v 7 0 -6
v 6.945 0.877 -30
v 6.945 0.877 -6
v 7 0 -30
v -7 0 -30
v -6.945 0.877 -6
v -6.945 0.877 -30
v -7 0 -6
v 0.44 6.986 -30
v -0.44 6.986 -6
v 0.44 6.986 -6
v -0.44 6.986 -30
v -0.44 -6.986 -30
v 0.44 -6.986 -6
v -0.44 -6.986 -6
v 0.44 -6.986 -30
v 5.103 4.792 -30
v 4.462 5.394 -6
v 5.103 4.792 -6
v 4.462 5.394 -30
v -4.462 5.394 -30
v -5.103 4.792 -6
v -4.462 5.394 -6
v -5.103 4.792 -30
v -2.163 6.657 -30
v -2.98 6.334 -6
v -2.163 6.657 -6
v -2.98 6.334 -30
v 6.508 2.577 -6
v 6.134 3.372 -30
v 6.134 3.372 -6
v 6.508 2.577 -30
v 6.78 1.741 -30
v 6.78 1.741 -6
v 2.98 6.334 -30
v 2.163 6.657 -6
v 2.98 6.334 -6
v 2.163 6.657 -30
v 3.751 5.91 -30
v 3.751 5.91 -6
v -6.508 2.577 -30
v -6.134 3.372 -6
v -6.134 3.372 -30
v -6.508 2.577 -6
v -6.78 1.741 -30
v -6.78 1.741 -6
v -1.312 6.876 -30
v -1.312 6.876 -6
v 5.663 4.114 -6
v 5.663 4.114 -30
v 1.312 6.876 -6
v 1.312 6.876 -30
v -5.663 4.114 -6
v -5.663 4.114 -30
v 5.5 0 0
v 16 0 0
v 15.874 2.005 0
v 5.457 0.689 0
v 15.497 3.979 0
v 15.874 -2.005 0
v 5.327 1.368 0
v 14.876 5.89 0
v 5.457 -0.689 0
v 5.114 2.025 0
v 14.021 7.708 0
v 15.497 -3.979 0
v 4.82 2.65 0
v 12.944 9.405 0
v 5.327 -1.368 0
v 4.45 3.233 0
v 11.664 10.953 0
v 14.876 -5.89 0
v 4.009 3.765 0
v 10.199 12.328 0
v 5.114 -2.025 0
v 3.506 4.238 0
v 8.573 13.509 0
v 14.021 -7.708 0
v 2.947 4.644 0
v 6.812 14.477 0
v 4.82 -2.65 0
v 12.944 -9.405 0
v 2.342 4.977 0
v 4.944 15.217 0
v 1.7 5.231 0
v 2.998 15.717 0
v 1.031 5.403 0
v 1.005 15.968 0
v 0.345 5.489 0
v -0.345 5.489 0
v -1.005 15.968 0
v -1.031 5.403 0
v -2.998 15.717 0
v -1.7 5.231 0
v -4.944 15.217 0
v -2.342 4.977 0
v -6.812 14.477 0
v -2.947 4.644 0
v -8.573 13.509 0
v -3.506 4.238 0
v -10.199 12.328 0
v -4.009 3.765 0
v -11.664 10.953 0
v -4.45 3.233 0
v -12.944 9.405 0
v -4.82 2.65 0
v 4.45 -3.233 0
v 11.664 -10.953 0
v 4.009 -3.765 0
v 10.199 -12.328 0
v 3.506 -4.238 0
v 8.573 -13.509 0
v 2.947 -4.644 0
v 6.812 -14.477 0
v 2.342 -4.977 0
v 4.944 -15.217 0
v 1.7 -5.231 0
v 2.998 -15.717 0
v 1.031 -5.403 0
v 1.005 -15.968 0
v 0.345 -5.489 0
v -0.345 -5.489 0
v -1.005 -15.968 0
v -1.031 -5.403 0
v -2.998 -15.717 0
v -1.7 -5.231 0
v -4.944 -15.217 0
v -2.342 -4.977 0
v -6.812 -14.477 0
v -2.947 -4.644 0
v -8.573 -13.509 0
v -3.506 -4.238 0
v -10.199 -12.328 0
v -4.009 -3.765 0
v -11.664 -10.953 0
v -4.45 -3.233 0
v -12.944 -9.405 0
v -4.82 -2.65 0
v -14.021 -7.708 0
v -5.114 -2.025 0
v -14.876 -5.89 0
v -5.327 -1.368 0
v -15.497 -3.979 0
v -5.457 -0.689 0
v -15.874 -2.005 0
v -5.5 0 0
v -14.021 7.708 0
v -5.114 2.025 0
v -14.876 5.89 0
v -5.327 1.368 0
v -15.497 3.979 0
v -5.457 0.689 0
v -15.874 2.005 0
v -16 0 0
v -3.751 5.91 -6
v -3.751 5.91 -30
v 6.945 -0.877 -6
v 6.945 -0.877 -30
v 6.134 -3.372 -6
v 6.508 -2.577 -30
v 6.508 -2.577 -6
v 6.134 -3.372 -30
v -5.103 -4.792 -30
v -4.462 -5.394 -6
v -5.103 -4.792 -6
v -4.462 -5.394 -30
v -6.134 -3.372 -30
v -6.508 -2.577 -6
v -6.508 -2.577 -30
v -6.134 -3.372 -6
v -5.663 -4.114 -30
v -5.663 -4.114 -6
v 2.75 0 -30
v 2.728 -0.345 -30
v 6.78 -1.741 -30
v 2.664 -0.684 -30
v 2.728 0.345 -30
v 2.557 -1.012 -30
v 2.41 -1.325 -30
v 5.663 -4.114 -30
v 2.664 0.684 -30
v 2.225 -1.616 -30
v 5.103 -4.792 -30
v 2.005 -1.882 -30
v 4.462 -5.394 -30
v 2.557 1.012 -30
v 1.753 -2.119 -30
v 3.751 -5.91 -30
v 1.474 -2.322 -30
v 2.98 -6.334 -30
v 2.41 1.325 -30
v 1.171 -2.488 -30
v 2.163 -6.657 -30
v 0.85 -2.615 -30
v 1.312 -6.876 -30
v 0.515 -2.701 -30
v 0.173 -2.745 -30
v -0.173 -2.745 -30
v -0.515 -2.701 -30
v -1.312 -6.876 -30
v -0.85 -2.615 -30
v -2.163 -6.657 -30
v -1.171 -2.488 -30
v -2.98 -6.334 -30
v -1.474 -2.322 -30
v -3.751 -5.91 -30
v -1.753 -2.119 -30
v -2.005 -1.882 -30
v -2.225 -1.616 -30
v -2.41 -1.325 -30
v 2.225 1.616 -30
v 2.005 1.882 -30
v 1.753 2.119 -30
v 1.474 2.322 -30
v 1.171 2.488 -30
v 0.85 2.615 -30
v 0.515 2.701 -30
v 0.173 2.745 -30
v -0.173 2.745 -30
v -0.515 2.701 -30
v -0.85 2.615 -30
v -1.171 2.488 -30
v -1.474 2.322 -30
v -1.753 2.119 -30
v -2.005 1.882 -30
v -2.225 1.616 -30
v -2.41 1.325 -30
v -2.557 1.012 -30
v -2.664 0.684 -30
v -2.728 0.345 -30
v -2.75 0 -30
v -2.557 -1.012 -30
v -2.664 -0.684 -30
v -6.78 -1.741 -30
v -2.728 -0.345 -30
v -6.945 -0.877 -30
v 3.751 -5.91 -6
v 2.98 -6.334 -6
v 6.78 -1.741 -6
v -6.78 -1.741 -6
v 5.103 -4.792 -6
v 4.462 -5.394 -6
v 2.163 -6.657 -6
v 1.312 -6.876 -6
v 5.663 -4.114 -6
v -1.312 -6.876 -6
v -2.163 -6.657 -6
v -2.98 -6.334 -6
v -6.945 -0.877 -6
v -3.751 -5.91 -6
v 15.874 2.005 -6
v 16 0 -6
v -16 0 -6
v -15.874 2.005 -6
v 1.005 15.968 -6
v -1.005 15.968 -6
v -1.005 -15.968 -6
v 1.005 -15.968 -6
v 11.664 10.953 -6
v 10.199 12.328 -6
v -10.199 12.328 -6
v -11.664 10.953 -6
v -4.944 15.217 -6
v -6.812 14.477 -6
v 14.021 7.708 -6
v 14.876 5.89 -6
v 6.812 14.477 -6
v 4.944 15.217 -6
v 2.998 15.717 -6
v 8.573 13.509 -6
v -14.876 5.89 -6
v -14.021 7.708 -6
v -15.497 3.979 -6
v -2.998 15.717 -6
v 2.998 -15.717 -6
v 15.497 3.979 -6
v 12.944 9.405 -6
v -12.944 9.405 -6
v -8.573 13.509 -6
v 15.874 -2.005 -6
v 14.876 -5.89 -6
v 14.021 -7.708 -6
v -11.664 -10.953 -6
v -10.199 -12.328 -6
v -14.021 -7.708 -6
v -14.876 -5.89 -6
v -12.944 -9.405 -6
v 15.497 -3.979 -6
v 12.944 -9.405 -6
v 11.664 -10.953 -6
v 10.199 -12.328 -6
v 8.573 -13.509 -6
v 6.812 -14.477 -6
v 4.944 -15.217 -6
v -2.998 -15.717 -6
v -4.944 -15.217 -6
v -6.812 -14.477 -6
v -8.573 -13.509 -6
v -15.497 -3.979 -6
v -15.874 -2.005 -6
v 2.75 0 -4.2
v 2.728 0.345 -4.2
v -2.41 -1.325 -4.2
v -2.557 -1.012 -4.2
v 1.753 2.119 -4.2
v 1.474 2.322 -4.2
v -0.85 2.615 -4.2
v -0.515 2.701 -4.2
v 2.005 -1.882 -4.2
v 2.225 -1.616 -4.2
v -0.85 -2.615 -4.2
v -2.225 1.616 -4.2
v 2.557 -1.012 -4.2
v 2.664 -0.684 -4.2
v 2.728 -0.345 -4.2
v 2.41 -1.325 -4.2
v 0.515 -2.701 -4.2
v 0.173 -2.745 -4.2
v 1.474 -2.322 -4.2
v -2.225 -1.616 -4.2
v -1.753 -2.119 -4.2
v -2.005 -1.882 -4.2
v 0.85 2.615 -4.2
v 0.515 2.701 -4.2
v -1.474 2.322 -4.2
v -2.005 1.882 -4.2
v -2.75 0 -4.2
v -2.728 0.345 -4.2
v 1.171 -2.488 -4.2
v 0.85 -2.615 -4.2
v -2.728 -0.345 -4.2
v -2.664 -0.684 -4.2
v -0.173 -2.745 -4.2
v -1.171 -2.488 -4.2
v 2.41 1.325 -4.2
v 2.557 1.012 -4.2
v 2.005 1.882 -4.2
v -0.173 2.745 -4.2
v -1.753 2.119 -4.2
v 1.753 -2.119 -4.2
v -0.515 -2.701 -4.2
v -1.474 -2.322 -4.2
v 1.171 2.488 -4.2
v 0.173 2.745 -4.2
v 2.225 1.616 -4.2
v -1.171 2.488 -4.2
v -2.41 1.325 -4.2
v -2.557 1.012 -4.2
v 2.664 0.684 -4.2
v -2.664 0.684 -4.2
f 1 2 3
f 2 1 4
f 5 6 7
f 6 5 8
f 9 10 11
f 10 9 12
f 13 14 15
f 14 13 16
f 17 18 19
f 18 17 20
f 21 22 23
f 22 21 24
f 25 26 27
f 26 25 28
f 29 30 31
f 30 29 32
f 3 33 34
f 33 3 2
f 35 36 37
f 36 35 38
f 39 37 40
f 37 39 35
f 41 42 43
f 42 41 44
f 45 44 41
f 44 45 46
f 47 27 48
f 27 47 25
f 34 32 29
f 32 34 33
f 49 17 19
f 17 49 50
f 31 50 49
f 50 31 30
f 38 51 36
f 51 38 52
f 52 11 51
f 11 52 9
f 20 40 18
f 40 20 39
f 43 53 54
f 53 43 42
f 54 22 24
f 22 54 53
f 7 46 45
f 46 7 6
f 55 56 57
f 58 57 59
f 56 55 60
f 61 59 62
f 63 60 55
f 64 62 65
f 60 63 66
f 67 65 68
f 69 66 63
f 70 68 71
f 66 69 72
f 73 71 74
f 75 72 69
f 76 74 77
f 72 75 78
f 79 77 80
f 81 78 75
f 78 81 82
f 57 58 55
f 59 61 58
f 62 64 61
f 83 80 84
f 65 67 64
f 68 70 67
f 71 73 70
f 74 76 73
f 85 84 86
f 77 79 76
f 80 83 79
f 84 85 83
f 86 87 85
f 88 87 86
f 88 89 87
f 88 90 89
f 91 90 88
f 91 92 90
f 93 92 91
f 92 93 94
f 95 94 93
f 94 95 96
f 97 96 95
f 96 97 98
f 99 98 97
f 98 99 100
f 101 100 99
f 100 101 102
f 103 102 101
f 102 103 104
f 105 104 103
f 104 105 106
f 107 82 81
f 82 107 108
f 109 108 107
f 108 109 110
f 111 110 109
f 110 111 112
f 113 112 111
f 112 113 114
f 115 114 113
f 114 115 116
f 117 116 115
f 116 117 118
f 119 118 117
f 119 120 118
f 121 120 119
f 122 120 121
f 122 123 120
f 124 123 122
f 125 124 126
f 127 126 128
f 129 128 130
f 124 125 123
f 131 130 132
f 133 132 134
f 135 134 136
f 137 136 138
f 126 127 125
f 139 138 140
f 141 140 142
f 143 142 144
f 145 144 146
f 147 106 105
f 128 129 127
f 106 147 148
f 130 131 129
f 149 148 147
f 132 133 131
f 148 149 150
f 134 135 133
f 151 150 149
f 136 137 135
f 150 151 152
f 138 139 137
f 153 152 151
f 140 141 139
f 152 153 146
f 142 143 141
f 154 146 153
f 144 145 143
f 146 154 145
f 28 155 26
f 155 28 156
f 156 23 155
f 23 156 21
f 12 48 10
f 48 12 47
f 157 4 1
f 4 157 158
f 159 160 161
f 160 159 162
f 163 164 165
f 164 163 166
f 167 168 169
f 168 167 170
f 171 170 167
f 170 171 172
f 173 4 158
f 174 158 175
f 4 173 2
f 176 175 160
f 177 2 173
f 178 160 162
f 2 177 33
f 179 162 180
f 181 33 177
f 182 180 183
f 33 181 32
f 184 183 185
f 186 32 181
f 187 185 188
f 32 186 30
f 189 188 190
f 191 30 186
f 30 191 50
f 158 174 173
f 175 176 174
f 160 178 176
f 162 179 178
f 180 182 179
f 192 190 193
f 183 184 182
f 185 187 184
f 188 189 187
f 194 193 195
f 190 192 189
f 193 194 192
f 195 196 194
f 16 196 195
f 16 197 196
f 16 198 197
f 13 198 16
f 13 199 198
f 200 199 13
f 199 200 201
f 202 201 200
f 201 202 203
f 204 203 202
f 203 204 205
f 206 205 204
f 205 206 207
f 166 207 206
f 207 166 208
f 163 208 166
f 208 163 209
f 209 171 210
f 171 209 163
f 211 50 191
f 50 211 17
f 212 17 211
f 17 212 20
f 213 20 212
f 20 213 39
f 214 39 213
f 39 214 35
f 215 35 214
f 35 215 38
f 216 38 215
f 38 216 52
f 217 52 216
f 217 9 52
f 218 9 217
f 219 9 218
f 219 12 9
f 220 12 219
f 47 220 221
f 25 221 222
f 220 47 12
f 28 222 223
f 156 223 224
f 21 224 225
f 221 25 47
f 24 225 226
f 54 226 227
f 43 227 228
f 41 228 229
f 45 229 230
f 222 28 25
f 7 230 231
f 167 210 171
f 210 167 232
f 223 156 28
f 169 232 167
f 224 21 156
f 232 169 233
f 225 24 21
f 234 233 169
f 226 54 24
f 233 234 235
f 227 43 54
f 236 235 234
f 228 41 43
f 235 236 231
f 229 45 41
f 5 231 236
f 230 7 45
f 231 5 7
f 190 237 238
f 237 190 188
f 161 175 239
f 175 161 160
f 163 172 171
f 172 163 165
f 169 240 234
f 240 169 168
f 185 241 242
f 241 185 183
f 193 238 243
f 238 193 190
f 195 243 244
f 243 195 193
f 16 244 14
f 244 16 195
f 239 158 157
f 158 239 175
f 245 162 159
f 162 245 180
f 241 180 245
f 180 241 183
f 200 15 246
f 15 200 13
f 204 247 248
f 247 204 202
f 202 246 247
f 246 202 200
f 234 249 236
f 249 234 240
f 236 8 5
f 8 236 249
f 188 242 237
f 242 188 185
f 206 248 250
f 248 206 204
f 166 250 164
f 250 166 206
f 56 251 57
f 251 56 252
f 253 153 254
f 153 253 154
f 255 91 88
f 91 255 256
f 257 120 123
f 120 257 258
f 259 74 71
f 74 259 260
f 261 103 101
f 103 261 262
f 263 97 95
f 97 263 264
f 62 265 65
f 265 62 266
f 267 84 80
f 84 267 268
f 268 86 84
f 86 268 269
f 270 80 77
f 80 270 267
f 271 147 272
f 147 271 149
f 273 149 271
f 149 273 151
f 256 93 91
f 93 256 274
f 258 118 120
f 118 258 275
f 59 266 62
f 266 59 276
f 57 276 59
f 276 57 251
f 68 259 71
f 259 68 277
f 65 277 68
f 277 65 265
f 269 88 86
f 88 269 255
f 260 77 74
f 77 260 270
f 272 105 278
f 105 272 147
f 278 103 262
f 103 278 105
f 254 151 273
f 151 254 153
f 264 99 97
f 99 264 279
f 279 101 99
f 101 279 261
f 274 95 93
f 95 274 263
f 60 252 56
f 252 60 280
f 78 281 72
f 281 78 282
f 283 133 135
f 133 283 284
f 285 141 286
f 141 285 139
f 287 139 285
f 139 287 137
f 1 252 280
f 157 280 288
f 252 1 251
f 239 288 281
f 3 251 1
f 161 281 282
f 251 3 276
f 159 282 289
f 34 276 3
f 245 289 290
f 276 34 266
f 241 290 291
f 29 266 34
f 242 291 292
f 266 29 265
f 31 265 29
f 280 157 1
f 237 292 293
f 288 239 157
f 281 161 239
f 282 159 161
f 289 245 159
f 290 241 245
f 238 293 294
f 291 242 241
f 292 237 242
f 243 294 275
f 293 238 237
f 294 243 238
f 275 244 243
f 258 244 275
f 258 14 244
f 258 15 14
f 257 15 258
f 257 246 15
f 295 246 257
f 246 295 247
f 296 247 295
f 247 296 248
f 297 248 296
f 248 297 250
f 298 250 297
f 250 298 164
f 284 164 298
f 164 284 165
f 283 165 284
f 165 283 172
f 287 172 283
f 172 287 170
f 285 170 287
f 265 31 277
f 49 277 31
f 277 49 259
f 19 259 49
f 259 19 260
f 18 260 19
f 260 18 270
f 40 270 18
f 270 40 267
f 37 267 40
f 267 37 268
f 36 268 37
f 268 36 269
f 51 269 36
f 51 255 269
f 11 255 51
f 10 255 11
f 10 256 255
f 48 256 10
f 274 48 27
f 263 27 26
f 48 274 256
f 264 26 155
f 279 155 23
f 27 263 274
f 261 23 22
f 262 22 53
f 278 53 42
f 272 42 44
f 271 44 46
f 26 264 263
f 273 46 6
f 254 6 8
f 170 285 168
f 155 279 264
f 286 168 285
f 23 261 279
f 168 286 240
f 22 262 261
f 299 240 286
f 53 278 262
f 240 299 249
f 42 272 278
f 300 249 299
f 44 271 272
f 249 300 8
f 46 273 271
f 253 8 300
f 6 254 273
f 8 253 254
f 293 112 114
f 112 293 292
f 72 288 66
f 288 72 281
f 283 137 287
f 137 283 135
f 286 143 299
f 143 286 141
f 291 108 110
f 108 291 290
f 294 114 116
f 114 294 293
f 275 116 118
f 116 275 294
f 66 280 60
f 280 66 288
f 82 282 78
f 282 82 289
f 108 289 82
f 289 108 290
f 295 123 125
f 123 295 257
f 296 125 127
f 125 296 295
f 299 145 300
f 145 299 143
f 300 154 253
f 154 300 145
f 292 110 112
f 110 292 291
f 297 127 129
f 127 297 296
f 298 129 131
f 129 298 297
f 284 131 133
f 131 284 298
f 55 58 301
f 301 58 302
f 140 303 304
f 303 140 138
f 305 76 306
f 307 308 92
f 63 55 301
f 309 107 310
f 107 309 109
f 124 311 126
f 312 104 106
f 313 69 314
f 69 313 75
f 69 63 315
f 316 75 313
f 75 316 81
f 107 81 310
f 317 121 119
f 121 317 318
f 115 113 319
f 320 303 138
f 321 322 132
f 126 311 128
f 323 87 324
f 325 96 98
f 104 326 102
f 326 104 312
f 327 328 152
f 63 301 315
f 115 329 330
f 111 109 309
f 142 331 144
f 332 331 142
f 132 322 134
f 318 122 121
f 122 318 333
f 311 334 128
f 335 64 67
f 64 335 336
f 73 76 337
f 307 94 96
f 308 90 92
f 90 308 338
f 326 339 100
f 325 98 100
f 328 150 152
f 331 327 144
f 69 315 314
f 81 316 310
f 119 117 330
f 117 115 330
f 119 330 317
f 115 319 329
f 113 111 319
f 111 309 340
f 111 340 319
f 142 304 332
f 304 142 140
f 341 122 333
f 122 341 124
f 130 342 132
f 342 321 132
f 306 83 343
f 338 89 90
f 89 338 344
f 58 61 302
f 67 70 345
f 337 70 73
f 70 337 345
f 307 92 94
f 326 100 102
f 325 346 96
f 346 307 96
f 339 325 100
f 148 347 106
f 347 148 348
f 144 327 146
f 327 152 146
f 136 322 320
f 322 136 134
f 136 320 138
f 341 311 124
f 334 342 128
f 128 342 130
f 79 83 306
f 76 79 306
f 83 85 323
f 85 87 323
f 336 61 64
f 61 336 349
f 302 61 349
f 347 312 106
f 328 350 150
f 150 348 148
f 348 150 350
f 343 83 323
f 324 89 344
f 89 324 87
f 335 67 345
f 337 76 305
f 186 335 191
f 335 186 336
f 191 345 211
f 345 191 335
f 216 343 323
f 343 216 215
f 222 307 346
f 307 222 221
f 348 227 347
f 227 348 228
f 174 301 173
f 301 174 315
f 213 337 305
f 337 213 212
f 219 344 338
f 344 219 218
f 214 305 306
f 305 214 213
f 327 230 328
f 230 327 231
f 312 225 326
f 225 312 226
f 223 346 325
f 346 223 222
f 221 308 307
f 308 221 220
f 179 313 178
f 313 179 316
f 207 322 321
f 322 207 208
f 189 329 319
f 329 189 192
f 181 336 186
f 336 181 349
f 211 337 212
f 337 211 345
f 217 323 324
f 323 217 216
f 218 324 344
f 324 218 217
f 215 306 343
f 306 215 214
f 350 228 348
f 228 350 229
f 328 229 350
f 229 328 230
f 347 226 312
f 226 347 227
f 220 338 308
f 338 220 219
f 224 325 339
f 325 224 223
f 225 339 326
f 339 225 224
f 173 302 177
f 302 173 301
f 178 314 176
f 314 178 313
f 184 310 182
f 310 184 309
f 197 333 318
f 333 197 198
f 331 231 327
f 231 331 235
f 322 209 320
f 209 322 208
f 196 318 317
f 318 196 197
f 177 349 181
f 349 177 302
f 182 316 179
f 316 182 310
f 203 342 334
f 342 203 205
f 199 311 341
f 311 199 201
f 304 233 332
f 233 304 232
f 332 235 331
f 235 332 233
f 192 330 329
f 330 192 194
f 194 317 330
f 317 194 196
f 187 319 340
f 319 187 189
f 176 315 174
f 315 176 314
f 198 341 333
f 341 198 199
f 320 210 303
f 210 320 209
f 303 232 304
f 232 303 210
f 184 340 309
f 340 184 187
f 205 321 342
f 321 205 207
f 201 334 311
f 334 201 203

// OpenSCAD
$fn = 50;


difference() {
	union() {
		translate(v = [0, 0, -30.0000000000]) {
			cylinder(h = 30, r = 7.0000000000);
		}
		translate(v = [0, 0, -6.0000000000]) {
			cylinder(h = 6, r = 16.0000000000);
		}
	}
	union() {
		translate(v = [0, 0, 0]) {
			rotate(a = [0, 0, 0]) {
				difference() {
					union() {
						#translate(v = [0, 0, -30.0000000000]) {
							cylinder(h = 30, r = 2.2500000000);
						}
						#translate(v = [0, 0, -4.2000000000]) {
							cylinder(h = 4.2000000000, r1 = 2.7500000000, r2 = 5.5000000000);
						}
						#translate(v = [0, 0, -30.0000000000]) {
							cylinder(h = 30, r = 2.7500000000);
						}
						#translate(v = [0, 0, -30.0000000000]) {
							cylinder(h = 30, r = 2.2500000000);
						}
					}
					union();
				}
			}
		}
	}
}
